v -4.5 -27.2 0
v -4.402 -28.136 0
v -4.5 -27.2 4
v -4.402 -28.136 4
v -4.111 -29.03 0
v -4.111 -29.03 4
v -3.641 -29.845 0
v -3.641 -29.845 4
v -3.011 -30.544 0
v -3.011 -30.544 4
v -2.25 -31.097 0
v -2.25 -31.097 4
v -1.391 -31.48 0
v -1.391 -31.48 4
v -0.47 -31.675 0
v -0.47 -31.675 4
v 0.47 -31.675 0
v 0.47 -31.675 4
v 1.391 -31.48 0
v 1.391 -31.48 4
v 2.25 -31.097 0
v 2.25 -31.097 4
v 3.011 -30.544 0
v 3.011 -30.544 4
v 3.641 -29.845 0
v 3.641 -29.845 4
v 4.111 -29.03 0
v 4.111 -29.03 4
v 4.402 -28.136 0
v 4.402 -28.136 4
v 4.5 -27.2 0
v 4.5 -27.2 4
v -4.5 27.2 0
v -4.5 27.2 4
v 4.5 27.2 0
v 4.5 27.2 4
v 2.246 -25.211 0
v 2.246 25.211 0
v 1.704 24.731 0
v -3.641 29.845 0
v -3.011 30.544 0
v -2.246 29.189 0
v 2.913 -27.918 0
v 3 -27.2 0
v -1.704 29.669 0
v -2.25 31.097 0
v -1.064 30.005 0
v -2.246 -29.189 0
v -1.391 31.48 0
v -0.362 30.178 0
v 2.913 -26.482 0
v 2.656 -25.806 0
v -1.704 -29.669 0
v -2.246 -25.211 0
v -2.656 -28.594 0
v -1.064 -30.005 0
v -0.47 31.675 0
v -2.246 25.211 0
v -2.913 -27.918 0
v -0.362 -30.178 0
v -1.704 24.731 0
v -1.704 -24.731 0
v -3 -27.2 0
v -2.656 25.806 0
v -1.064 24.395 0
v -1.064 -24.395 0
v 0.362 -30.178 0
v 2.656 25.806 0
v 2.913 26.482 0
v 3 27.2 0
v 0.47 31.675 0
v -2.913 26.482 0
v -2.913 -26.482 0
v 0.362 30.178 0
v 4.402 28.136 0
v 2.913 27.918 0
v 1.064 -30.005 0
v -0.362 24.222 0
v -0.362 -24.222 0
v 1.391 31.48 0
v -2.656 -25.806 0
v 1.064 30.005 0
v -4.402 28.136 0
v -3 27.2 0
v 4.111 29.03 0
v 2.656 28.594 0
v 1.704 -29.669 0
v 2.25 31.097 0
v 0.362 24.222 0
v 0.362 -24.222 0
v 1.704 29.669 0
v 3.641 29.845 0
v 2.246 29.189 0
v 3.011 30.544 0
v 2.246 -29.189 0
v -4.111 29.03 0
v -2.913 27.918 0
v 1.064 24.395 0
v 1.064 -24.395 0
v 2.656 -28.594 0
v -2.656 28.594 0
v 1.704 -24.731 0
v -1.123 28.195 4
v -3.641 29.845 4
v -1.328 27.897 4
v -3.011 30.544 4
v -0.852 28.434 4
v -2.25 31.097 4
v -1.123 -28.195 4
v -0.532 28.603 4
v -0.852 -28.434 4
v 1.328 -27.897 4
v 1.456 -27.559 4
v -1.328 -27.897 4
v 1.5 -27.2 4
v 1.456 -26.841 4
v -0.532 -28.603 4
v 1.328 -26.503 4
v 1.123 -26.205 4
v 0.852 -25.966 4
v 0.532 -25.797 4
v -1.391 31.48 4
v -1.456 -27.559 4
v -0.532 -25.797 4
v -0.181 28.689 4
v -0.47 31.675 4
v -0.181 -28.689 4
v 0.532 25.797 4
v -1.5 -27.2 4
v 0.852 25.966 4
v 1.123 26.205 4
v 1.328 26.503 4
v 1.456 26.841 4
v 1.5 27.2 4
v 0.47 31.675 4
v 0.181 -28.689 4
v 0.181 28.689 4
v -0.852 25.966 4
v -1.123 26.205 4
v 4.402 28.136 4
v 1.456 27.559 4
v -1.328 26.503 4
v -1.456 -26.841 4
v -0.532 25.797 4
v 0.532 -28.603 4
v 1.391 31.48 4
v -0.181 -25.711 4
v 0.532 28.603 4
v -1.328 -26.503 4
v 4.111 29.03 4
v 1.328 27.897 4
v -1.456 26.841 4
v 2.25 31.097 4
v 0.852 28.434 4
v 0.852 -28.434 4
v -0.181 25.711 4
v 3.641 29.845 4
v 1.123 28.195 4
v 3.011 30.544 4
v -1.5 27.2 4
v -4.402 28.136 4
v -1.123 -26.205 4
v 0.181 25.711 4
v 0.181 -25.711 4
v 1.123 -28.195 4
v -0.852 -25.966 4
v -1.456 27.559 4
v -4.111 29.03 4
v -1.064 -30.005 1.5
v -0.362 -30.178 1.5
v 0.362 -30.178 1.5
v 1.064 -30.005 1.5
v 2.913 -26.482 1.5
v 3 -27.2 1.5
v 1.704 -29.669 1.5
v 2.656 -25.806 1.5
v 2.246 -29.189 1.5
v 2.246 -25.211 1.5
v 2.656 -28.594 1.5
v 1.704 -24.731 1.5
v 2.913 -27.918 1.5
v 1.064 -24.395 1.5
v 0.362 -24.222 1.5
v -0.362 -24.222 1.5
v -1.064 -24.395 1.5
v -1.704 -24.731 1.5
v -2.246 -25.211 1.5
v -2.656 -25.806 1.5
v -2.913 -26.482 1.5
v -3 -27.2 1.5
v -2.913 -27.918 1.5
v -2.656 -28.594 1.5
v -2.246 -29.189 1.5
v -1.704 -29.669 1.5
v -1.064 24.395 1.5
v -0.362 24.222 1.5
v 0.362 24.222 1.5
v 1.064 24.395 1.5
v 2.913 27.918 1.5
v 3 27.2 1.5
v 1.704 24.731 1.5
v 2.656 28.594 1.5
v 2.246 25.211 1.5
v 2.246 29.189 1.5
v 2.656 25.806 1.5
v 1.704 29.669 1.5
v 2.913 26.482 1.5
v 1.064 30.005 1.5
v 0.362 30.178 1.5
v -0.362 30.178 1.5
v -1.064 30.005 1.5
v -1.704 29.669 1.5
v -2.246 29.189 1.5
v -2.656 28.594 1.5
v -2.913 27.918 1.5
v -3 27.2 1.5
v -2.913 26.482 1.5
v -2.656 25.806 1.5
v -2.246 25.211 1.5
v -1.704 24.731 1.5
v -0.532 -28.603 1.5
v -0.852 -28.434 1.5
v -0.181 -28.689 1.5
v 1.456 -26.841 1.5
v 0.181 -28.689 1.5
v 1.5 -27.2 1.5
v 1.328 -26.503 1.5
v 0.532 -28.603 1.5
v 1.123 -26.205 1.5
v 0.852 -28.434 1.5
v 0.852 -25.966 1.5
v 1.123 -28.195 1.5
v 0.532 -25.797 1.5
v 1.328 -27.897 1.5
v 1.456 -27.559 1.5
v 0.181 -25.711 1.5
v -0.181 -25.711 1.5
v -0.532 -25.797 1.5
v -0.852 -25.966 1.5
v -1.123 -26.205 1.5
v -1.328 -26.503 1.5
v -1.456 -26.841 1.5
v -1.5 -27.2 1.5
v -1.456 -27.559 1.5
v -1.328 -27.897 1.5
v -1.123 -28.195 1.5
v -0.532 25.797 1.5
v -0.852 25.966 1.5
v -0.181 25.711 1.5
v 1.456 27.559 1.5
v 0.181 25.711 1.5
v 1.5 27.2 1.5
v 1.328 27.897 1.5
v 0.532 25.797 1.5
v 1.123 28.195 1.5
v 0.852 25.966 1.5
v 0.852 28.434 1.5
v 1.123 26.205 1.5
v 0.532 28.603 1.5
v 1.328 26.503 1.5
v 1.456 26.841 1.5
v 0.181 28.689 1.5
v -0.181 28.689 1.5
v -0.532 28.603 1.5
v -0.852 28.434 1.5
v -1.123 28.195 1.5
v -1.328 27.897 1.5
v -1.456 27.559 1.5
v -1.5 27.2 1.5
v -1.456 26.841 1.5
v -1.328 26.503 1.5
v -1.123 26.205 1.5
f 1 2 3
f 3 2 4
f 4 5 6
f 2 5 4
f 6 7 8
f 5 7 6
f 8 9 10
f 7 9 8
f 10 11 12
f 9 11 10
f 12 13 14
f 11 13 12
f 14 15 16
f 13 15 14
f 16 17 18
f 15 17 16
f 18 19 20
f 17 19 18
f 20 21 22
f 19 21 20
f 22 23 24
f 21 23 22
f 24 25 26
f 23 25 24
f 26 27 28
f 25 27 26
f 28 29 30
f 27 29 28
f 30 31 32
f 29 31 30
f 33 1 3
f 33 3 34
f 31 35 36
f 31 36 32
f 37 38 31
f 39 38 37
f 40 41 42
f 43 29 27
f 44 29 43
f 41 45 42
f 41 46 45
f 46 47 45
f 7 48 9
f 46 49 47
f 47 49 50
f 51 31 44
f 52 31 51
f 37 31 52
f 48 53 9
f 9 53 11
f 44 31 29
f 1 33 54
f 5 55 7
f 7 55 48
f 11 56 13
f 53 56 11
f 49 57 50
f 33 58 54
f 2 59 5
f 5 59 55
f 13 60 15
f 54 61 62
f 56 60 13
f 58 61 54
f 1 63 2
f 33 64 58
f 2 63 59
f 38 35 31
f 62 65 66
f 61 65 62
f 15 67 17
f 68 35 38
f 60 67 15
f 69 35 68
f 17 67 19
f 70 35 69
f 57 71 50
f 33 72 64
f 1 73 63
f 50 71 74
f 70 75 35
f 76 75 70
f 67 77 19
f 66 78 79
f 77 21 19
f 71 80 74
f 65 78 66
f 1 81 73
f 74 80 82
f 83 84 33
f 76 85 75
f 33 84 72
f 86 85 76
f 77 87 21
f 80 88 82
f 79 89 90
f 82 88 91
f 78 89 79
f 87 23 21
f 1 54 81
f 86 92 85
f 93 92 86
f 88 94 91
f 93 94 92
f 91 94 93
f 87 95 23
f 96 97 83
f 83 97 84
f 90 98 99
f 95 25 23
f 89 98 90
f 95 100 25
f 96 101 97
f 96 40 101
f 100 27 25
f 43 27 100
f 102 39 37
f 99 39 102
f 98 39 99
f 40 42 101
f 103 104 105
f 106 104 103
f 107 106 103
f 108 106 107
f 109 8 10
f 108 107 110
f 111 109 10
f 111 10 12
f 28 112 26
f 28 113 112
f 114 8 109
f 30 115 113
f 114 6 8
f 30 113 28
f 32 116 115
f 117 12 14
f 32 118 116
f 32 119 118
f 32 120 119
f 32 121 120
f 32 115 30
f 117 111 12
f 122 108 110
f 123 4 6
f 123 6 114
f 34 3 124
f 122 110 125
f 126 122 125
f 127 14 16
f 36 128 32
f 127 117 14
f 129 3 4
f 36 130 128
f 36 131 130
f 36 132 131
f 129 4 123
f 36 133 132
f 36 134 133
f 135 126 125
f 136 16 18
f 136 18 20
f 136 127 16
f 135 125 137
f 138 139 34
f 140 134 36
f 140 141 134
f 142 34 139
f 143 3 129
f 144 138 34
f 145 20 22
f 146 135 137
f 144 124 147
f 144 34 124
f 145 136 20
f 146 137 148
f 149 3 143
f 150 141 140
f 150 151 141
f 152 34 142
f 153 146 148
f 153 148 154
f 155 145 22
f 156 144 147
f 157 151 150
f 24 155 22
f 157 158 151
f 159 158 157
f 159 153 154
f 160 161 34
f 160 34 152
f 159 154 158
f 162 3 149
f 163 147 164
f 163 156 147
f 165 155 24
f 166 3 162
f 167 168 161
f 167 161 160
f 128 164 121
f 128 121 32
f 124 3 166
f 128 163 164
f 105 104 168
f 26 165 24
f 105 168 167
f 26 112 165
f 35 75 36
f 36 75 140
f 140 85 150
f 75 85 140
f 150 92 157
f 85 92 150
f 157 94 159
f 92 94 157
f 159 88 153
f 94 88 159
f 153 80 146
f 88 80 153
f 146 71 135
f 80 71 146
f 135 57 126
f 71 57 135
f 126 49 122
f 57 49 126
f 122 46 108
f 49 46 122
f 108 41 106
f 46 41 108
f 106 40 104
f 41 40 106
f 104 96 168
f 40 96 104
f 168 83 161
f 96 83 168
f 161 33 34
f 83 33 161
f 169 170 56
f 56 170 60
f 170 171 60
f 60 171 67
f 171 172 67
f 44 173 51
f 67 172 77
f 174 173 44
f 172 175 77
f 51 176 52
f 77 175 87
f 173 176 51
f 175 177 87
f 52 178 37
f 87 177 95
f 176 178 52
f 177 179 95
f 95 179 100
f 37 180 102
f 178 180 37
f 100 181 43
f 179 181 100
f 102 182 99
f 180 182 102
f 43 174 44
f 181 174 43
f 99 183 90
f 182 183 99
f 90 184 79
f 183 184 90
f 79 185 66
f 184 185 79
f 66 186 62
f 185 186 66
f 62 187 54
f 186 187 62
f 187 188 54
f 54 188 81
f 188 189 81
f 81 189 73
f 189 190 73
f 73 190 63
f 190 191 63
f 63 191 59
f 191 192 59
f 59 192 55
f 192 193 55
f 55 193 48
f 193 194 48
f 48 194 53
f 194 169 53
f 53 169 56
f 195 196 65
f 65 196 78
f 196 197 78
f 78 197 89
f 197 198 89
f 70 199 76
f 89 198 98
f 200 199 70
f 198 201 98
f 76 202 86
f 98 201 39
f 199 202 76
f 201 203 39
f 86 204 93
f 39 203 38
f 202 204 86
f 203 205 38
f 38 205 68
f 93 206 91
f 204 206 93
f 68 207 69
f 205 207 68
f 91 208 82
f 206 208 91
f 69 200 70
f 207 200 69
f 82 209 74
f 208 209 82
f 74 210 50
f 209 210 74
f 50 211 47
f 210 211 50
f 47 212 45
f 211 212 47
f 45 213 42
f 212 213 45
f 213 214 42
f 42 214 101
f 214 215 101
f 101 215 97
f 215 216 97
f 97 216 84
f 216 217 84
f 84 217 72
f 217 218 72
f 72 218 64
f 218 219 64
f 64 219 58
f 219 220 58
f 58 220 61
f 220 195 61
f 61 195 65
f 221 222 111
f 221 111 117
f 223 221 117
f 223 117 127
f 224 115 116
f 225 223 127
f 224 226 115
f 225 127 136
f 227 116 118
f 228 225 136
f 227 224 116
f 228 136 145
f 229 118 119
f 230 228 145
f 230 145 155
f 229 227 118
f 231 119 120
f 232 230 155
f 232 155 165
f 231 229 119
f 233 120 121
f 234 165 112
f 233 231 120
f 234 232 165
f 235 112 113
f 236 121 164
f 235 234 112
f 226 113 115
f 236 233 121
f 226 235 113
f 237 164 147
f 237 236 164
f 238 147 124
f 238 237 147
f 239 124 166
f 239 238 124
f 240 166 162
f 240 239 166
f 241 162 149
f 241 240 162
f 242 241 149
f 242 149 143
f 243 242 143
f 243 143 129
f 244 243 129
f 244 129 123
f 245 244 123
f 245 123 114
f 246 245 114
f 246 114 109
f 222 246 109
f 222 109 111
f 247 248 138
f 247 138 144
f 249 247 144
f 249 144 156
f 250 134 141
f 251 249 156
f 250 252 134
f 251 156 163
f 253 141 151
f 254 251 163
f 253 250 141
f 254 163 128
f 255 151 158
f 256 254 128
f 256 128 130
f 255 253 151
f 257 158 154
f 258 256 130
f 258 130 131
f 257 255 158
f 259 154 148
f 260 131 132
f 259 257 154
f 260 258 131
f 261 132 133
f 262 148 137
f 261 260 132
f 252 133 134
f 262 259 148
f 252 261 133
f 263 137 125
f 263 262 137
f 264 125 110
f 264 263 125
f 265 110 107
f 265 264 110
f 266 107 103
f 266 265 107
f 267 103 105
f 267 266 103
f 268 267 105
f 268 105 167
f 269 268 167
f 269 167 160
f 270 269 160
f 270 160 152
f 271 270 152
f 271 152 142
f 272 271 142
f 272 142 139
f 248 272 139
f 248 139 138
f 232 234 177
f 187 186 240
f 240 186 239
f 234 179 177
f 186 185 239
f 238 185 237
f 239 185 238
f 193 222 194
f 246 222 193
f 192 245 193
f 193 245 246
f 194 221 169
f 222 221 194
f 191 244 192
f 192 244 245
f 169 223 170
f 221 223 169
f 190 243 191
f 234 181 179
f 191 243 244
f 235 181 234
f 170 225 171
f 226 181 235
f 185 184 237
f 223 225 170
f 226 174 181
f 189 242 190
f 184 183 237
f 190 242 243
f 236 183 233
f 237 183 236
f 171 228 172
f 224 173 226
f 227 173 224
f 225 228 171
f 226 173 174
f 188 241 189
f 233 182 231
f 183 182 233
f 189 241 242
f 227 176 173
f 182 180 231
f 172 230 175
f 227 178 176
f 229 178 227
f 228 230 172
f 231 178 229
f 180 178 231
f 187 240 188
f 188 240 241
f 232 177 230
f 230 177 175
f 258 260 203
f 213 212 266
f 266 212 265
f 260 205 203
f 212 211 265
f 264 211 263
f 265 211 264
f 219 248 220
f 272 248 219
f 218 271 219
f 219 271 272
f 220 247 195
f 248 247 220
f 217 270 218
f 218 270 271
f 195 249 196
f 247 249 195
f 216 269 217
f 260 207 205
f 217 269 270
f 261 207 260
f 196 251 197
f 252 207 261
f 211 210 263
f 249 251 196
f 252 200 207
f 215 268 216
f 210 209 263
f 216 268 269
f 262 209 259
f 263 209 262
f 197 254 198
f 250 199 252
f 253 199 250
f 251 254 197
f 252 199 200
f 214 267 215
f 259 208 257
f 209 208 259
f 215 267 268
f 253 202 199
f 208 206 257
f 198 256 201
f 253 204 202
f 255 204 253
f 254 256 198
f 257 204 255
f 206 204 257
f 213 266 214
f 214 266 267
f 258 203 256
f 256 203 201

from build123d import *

# Parameters (mm, degrees)
SKETCH_R      = 1.5
PAD_DEPTH     = 4
SKETCH001_R   = 3
SKETCH001_R_2 = 1.5
POCKET_DEPTH  = 1.5


with BuildPart() as part:
    # Sketch → Pad (new body)
    with BuildSketch(Plane.XY):
        with BuildLine():
            ThreePointArc((4.5, 27.2), (0, 31.7), (-4.5, 27.2))
            Line((-4.5, -27.2), (-4.5, 27.2))
            ThreePointArc((-4.5, -27.2), (0, -31.7), (4.5, -27.2))
            Line((4.5, 27.2), (4.5, -27.2))
        make_face()
        with Locations((0, 27.2)):
            Circle(SKETCH_R, mode=Mode.SUBTRACT)
        with Locations((0, -27.2)):
            Circle(SKETCH_R, mode=Mode.SUBTRACT)
    extrude(amount=PAD_DEPTH)

    # Sketch001 → Pocket (cut, symmetric)
    with BuildSketch(Plane.XY):
        with Locations((0, -27.2)):
            Circle(SKETCH001_R)
        with Locations((0, -27.2)):
            Circle(SKETCH001_R_2, mode=Mode.SUBTRACT)
        with Locations((0, 27.2)):
            Circle(SKETCH001_R)
        with Locations((0, 27.2)):
            Circle(SKETCH001_R_2, mode=Mode.SUBTRACT)
    extrude(amount=POCKET_DEPTH, both=True, mode=Mode.SUBTRACT)


solid = part.part
